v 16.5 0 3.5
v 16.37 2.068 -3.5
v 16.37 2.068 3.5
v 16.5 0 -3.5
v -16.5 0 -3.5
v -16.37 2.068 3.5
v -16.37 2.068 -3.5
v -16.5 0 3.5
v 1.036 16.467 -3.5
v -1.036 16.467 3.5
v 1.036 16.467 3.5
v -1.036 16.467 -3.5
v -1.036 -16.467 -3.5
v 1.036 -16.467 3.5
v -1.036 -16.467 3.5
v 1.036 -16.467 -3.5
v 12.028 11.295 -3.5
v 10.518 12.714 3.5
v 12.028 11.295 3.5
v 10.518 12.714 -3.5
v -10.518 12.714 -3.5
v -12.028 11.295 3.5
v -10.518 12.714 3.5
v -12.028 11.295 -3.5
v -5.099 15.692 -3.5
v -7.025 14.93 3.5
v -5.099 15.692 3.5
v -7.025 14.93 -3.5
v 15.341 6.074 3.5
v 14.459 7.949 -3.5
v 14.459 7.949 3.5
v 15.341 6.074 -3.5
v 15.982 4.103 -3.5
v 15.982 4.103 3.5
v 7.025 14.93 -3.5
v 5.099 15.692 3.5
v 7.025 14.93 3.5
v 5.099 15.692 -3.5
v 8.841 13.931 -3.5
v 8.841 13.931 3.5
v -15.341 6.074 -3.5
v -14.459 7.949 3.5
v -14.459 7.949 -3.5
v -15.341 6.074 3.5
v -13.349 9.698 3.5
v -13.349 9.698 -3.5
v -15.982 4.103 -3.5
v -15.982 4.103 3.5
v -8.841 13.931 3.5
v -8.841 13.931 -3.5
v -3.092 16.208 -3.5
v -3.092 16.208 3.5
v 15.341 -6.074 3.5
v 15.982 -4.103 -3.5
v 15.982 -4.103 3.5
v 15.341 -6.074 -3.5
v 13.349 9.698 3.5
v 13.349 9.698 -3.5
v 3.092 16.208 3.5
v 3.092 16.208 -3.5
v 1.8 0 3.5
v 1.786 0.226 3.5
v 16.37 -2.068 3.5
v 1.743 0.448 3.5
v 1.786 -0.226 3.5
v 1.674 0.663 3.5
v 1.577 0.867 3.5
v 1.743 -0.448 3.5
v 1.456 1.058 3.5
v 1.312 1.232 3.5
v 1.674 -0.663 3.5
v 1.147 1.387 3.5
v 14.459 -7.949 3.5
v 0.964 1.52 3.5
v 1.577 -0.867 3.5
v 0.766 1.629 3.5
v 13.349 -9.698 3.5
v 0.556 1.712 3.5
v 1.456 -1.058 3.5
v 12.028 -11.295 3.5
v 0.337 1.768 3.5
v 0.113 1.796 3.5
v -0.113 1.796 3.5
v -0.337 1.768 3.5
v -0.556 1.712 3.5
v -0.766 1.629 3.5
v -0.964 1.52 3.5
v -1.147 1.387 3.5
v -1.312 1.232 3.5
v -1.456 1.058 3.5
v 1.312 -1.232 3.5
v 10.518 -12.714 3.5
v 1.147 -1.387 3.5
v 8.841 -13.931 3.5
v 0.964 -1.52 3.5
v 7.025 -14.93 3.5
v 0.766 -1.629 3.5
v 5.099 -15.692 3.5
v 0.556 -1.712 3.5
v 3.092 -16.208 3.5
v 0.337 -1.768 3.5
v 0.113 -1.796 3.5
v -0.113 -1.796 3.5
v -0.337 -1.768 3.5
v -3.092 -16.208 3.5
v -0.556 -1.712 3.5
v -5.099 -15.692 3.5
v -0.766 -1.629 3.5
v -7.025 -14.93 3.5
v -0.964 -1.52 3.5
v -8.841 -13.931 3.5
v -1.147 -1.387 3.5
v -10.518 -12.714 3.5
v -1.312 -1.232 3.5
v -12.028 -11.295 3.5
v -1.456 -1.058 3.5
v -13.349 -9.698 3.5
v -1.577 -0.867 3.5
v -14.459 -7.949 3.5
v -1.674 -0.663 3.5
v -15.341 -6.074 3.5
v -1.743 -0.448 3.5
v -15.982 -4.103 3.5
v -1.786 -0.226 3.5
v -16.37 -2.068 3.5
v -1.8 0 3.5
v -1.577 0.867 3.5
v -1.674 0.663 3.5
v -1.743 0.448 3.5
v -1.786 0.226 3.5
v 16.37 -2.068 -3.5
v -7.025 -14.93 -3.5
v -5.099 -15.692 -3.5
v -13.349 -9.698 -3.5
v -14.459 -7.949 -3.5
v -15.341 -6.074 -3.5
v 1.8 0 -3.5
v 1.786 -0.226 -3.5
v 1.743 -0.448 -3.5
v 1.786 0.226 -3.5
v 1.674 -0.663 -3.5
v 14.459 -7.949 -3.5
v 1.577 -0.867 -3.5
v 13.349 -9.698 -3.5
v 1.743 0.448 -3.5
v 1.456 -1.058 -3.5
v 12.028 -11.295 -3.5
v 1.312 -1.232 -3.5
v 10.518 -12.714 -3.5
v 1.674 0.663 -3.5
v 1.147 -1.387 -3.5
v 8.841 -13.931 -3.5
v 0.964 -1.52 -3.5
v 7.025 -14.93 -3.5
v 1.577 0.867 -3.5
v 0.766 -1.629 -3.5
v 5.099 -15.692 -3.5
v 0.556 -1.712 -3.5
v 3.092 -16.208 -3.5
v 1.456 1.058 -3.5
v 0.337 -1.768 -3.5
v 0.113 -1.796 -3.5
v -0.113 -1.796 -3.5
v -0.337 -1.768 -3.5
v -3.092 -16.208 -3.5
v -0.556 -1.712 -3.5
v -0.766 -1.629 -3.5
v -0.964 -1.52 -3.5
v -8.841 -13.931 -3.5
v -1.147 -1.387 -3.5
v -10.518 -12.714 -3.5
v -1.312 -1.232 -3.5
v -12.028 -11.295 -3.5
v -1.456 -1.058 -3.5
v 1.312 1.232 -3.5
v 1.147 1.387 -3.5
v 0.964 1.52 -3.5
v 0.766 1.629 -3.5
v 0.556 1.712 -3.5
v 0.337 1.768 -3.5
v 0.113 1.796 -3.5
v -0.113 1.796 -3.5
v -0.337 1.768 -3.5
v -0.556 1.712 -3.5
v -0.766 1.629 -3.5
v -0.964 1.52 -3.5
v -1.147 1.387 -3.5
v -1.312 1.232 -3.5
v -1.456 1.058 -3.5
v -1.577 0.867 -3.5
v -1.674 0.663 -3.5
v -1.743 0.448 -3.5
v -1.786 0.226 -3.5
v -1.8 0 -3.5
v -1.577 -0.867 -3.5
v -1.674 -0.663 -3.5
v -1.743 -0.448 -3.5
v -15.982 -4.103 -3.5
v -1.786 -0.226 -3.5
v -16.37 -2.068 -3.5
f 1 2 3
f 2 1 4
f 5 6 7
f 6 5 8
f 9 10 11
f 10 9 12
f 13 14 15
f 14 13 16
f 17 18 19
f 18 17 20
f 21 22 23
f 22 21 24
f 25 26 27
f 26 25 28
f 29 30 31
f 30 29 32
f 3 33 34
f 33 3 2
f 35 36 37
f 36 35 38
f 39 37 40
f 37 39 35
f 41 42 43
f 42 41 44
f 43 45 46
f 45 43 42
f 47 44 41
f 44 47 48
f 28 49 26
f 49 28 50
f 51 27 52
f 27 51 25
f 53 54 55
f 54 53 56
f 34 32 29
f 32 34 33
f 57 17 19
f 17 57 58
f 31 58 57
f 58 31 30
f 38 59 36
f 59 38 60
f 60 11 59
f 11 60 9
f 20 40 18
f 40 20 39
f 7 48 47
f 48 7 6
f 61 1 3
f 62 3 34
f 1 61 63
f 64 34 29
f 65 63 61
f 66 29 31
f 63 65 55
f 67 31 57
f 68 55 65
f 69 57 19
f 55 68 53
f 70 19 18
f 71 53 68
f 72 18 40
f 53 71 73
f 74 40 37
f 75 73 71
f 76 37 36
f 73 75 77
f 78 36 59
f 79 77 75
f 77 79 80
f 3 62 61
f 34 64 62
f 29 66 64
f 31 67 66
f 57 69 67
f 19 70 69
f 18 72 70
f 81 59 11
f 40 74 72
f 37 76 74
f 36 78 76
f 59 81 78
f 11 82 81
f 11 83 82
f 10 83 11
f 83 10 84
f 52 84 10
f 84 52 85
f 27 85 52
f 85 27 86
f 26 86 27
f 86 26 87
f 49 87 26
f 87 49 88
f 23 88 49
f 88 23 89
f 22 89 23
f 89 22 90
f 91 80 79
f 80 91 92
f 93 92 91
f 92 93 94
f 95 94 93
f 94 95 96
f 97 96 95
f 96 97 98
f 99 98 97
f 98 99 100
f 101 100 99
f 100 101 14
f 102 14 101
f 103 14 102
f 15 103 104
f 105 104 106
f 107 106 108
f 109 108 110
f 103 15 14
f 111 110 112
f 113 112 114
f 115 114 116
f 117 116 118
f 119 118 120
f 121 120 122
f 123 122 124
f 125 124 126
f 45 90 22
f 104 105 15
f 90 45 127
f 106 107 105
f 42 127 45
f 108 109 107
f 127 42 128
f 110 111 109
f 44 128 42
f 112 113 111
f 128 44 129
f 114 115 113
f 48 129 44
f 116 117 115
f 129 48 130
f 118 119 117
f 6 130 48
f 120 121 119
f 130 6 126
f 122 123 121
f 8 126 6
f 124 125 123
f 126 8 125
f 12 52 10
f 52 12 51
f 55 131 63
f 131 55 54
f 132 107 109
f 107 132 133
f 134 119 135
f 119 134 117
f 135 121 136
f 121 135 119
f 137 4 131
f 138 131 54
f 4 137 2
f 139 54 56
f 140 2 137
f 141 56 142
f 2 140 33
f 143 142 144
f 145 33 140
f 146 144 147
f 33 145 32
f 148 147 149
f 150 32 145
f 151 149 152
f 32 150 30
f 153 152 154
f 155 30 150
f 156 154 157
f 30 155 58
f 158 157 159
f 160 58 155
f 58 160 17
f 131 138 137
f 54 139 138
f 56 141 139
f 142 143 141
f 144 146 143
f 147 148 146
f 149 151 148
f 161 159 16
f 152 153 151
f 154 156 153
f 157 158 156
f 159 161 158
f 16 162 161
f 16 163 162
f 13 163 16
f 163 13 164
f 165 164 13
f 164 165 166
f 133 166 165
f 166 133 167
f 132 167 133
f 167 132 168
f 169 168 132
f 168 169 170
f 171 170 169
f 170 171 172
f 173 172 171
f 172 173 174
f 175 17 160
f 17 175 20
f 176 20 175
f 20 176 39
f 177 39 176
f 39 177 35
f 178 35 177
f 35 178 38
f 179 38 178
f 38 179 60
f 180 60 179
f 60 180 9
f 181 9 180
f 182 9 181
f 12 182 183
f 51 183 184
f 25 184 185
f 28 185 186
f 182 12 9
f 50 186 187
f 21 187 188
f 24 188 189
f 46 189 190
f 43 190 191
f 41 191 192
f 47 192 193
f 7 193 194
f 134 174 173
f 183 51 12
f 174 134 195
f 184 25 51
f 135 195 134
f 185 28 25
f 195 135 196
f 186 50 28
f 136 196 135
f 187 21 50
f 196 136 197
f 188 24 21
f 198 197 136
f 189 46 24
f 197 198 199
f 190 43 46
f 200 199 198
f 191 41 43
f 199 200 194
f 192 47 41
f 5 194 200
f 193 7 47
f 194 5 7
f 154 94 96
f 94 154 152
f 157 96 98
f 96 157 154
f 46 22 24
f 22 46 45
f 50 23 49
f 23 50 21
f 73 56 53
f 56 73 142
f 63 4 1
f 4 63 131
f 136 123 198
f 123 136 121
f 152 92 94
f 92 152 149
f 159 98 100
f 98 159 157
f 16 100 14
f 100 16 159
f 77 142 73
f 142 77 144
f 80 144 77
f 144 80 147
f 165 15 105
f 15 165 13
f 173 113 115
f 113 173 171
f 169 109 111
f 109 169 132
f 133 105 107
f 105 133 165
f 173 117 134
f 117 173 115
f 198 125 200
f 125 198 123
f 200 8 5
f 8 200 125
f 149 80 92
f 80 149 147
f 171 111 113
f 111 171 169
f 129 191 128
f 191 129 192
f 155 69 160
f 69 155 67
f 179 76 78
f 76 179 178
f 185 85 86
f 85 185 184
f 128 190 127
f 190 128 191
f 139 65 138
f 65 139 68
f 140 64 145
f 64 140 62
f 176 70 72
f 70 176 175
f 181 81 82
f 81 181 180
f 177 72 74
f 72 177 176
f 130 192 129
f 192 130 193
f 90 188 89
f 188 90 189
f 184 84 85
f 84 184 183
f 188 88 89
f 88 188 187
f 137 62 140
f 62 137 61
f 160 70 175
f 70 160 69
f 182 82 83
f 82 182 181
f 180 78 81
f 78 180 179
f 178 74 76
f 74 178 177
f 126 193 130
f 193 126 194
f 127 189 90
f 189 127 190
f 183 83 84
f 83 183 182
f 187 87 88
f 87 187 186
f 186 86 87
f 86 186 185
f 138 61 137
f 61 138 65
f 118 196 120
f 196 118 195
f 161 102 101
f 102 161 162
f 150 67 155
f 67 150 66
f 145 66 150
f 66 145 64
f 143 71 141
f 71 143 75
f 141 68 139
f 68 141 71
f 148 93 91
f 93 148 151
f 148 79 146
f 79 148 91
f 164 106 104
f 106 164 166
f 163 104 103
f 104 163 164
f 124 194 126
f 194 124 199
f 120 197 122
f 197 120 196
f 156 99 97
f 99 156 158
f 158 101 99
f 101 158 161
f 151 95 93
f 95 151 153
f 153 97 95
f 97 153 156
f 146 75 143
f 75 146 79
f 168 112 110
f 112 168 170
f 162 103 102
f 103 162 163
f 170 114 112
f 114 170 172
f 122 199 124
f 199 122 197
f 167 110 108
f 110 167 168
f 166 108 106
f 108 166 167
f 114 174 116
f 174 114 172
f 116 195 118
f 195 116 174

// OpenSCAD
$fn = 50;


difference() {
	union() {
		translate(v = [0, 0, -3.5000000000]) {
			cylinder(h = 7, r = 16.5000000000);
		}
	}
	union() {
		translate(v = [0, 0, -100.0000000000]) {
			cylinder(h = 200, r = 1.8000000000);
		}
	}
}
